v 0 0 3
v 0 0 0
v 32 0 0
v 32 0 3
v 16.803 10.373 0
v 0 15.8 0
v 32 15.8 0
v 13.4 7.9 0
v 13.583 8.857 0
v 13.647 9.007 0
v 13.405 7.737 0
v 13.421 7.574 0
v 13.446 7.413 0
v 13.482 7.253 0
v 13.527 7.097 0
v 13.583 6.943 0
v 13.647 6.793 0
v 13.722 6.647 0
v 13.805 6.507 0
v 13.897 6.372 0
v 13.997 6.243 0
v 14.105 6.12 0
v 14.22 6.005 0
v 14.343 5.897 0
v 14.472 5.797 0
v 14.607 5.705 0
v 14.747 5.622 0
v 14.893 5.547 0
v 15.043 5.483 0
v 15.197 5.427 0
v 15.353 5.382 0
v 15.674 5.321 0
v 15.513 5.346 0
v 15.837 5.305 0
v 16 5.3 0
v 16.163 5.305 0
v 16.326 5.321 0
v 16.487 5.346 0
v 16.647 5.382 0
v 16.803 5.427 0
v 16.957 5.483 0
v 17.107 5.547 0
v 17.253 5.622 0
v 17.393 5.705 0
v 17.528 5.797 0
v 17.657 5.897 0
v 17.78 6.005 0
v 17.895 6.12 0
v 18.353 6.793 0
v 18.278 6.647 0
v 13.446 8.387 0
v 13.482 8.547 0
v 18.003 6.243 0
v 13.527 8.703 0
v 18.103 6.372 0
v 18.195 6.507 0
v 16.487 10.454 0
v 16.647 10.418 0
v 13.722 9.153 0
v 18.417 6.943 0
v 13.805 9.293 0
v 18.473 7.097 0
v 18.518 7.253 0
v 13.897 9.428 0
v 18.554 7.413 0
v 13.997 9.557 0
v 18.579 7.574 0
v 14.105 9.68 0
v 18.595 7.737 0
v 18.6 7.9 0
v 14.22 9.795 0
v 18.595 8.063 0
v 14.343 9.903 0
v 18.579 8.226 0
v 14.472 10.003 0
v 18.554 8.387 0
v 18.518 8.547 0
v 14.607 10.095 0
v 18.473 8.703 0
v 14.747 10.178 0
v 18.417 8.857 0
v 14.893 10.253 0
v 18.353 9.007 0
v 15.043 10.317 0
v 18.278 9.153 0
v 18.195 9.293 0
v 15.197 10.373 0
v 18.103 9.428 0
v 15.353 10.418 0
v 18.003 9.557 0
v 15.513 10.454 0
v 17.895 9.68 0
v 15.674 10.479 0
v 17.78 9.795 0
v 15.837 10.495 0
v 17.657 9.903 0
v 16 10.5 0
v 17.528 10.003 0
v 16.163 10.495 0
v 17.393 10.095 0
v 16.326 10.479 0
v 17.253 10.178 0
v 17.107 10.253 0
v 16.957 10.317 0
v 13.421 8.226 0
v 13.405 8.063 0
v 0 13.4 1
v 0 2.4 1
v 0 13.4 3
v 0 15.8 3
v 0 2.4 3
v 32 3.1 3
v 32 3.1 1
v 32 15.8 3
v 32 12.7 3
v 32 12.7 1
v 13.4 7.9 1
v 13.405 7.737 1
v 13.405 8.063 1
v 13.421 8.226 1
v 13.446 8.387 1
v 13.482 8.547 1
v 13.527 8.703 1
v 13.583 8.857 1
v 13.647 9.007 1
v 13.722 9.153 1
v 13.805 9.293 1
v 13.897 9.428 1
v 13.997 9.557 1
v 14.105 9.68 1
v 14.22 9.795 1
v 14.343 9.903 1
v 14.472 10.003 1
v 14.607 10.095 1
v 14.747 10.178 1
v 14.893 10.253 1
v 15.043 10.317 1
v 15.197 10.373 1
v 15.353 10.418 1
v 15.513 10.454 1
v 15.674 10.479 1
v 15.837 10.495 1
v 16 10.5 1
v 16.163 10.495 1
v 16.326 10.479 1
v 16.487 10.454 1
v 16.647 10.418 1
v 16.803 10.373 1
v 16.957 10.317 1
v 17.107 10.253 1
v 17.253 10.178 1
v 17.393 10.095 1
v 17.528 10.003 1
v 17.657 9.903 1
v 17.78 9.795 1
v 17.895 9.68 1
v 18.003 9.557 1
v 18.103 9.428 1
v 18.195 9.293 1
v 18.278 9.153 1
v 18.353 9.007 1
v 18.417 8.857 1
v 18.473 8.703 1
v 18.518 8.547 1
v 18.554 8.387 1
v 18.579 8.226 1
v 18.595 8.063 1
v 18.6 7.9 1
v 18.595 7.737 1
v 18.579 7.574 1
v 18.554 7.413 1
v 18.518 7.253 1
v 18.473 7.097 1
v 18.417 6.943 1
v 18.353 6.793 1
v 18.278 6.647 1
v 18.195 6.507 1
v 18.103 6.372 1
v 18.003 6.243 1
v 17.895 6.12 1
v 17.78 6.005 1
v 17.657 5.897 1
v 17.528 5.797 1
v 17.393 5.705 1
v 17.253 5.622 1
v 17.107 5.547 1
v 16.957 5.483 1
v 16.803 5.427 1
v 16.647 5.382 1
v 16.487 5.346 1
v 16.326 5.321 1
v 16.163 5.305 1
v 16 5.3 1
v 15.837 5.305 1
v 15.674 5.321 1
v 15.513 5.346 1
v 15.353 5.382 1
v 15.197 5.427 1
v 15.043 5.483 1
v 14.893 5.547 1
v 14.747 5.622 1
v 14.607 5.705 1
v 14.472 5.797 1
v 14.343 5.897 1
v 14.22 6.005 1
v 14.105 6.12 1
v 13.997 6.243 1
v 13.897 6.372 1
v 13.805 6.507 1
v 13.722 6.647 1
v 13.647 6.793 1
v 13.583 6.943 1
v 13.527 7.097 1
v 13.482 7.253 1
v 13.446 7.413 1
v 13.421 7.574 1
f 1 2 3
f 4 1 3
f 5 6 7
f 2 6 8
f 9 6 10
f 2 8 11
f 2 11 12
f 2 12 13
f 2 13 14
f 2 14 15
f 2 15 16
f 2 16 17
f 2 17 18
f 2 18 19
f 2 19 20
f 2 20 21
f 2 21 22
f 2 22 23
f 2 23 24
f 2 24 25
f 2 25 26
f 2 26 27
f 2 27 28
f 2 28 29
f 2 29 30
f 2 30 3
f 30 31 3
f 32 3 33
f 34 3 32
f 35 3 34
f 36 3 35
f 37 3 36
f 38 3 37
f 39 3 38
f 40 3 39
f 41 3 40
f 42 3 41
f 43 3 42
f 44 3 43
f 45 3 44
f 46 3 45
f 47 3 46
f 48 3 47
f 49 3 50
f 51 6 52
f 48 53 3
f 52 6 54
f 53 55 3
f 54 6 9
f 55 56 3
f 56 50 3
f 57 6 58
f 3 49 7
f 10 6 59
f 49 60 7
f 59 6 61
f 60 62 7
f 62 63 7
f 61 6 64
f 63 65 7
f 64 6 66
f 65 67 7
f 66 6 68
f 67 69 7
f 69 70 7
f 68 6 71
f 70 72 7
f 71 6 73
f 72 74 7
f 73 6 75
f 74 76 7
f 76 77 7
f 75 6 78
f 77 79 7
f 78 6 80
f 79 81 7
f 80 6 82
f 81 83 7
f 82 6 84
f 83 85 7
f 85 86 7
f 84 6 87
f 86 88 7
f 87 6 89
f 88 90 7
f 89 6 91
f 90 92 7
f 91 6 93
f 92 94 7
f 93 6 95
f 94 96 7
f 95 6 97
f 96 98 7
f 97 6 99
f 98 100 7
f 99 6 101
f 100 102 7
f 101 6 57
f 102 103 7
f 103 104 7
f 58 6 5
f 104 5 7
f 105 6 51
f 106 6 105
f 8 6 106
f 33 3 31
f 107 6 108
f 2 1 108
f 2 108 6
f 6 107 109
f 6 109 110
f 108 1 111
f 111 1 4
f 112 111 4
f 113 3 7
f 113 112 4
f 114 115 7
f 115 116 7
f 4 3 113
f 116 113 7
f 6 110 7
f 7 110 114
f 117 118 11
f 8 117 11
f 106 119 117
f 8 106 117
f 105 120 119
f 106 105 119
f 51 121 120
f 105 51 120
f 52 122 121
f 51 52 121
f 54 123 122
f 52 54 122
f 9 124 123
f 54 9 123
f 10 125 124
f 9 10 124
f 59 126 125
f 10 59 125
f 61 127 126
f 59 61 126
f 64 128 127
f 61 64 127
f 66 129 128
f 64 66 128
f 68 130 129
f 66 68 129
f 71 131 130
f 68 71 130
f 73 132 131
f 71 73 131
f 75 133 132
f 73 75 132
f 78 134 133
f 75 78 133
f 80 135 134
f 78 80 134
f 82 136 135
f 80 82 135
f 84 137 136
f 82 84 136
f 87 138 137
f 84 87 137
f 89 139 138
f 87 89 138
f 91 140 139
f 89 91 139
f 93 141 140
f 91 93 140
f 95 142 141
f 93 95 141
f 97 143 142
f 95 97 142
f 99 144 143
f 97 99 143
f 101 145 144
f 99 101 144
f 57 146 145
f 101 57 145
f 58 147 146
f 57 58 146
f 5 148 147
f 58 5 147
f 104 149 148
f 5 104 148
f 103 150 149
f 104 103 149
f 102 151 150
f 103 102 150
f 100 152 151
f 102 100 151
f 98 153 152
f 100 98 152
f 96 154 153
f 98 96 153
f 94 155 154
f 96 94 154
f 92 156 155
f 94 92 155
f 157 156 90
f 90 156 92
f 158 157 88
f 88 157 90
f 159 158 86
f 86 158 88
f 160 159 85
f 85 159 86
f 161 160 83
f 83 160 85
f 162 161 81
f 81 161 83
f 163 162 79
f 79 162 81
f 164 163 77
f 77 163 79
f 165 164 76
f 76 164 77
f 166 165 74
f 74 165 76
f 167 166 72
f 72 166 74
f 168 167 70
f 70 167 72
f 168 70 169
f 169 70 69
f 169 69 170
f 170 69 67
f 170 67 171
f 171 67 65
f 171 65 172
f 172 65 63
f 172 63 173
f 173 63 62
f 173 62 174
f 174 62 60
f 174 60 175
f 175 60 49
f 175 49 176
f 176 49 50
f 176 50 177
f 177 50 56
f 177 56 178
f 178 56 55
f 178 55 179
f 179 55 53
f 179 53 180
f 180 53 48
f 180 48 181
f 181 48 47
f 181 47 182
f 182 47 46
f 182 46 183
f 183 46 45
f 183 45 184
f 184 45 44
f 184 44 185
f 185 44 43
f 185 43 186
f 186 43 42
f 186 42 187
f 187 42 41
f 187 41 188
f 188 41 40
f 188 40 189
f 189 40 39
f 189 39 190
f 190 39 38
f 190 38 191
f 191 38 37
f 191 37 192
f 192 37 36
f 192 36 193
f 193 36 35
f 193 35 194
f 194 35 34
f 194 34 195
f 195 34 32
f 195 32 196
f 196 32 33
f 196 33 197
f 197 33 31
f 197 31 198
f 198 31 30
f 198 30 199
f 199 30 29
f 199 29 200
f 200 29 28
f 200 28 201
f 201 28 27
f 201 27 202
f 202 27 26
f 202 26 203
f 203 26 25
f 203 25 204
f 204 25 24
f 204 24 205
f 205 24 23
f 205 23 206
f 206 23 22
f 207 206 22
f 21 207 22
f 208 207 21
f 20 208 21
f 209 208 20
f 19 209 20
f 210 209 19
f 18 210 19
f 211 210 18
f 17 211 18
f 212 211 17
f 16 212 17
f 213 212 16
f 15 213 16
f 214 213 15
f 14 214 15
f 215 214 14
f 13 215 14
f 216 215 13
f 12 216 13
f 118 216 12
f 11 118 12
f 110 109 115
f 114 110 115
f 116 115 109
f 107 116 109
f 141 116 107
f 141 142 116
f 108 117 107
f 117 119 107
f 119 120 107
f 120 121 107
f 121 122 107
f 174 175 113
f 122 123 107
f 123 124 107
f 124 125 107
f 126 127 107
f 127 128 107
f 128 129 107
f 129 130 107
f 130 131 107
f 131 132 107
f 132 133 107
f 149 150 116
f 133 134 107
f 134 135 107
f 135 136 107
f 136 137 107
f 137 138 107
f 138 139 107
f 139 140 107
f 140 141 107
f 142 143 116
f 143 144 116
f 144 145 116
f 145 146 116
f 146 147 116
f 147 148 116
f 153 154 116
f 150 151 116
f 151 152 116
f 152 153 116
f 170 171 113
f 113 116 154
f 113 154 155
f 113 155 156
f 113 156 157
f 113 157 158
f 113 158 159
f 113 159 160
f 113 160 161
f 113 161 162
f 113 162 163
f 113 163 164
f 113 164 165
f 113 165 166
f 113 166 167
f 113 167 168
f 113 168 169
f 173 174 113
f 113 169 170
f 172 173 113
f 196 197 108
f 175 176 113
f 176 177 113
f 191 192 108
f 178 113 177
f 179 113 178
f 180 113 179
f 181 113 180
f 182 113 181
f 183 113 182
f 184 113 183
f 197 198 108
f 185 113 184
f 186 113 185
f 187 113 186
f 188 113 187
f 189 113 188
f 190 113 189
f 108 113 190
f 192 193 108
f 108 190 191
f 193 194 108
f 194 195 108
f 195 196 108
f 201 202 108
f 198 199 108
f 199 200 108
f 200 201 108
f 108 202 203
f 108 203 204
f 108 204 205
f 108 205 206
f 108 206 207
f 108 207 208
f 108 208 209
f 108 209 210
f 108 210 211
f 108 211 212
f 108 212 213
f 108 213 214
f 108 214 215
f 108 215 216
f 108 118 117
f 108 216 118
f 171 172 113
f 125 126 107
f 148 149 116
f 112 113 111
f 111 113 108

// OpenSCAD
$fn=100;

w=32;
h=16  - .2 ; //subtract .2 for sliding in
thickness=3.0;
slotdepth=2.0;
fanhb=11.0;
fanhs=9.6;

x1=0;    	y1=(h-fanhb)/2;

x2=w;			y2=(h-fanhs)/2;

x3=w;			y3=y2+fanhs;

x4=0;			y4=y1+fanhb;
servoarmouter();

module servoarmouter () {

 difference () {

   linear_extrude( height=thickness)
   color ( "blue") 
   polygon( [ [0,0],[w,0],[w,h],[0,h] ] , [   [0,1,2,3] ]);
  
   color("red")
   translate([0,0,thickness-slotdepth]) 
   linear_extrude(height=slotdepth)	
   polygon( [ [x1,y1],[x2,y2],[x3,y3],[x4,y4] ] , [   [0,1,2,3] ]);

	color ("red")
	translate([w/2,h/2,0])
	linear_extrude(height=1.2)
	circle(d=5.2);

  }

}
